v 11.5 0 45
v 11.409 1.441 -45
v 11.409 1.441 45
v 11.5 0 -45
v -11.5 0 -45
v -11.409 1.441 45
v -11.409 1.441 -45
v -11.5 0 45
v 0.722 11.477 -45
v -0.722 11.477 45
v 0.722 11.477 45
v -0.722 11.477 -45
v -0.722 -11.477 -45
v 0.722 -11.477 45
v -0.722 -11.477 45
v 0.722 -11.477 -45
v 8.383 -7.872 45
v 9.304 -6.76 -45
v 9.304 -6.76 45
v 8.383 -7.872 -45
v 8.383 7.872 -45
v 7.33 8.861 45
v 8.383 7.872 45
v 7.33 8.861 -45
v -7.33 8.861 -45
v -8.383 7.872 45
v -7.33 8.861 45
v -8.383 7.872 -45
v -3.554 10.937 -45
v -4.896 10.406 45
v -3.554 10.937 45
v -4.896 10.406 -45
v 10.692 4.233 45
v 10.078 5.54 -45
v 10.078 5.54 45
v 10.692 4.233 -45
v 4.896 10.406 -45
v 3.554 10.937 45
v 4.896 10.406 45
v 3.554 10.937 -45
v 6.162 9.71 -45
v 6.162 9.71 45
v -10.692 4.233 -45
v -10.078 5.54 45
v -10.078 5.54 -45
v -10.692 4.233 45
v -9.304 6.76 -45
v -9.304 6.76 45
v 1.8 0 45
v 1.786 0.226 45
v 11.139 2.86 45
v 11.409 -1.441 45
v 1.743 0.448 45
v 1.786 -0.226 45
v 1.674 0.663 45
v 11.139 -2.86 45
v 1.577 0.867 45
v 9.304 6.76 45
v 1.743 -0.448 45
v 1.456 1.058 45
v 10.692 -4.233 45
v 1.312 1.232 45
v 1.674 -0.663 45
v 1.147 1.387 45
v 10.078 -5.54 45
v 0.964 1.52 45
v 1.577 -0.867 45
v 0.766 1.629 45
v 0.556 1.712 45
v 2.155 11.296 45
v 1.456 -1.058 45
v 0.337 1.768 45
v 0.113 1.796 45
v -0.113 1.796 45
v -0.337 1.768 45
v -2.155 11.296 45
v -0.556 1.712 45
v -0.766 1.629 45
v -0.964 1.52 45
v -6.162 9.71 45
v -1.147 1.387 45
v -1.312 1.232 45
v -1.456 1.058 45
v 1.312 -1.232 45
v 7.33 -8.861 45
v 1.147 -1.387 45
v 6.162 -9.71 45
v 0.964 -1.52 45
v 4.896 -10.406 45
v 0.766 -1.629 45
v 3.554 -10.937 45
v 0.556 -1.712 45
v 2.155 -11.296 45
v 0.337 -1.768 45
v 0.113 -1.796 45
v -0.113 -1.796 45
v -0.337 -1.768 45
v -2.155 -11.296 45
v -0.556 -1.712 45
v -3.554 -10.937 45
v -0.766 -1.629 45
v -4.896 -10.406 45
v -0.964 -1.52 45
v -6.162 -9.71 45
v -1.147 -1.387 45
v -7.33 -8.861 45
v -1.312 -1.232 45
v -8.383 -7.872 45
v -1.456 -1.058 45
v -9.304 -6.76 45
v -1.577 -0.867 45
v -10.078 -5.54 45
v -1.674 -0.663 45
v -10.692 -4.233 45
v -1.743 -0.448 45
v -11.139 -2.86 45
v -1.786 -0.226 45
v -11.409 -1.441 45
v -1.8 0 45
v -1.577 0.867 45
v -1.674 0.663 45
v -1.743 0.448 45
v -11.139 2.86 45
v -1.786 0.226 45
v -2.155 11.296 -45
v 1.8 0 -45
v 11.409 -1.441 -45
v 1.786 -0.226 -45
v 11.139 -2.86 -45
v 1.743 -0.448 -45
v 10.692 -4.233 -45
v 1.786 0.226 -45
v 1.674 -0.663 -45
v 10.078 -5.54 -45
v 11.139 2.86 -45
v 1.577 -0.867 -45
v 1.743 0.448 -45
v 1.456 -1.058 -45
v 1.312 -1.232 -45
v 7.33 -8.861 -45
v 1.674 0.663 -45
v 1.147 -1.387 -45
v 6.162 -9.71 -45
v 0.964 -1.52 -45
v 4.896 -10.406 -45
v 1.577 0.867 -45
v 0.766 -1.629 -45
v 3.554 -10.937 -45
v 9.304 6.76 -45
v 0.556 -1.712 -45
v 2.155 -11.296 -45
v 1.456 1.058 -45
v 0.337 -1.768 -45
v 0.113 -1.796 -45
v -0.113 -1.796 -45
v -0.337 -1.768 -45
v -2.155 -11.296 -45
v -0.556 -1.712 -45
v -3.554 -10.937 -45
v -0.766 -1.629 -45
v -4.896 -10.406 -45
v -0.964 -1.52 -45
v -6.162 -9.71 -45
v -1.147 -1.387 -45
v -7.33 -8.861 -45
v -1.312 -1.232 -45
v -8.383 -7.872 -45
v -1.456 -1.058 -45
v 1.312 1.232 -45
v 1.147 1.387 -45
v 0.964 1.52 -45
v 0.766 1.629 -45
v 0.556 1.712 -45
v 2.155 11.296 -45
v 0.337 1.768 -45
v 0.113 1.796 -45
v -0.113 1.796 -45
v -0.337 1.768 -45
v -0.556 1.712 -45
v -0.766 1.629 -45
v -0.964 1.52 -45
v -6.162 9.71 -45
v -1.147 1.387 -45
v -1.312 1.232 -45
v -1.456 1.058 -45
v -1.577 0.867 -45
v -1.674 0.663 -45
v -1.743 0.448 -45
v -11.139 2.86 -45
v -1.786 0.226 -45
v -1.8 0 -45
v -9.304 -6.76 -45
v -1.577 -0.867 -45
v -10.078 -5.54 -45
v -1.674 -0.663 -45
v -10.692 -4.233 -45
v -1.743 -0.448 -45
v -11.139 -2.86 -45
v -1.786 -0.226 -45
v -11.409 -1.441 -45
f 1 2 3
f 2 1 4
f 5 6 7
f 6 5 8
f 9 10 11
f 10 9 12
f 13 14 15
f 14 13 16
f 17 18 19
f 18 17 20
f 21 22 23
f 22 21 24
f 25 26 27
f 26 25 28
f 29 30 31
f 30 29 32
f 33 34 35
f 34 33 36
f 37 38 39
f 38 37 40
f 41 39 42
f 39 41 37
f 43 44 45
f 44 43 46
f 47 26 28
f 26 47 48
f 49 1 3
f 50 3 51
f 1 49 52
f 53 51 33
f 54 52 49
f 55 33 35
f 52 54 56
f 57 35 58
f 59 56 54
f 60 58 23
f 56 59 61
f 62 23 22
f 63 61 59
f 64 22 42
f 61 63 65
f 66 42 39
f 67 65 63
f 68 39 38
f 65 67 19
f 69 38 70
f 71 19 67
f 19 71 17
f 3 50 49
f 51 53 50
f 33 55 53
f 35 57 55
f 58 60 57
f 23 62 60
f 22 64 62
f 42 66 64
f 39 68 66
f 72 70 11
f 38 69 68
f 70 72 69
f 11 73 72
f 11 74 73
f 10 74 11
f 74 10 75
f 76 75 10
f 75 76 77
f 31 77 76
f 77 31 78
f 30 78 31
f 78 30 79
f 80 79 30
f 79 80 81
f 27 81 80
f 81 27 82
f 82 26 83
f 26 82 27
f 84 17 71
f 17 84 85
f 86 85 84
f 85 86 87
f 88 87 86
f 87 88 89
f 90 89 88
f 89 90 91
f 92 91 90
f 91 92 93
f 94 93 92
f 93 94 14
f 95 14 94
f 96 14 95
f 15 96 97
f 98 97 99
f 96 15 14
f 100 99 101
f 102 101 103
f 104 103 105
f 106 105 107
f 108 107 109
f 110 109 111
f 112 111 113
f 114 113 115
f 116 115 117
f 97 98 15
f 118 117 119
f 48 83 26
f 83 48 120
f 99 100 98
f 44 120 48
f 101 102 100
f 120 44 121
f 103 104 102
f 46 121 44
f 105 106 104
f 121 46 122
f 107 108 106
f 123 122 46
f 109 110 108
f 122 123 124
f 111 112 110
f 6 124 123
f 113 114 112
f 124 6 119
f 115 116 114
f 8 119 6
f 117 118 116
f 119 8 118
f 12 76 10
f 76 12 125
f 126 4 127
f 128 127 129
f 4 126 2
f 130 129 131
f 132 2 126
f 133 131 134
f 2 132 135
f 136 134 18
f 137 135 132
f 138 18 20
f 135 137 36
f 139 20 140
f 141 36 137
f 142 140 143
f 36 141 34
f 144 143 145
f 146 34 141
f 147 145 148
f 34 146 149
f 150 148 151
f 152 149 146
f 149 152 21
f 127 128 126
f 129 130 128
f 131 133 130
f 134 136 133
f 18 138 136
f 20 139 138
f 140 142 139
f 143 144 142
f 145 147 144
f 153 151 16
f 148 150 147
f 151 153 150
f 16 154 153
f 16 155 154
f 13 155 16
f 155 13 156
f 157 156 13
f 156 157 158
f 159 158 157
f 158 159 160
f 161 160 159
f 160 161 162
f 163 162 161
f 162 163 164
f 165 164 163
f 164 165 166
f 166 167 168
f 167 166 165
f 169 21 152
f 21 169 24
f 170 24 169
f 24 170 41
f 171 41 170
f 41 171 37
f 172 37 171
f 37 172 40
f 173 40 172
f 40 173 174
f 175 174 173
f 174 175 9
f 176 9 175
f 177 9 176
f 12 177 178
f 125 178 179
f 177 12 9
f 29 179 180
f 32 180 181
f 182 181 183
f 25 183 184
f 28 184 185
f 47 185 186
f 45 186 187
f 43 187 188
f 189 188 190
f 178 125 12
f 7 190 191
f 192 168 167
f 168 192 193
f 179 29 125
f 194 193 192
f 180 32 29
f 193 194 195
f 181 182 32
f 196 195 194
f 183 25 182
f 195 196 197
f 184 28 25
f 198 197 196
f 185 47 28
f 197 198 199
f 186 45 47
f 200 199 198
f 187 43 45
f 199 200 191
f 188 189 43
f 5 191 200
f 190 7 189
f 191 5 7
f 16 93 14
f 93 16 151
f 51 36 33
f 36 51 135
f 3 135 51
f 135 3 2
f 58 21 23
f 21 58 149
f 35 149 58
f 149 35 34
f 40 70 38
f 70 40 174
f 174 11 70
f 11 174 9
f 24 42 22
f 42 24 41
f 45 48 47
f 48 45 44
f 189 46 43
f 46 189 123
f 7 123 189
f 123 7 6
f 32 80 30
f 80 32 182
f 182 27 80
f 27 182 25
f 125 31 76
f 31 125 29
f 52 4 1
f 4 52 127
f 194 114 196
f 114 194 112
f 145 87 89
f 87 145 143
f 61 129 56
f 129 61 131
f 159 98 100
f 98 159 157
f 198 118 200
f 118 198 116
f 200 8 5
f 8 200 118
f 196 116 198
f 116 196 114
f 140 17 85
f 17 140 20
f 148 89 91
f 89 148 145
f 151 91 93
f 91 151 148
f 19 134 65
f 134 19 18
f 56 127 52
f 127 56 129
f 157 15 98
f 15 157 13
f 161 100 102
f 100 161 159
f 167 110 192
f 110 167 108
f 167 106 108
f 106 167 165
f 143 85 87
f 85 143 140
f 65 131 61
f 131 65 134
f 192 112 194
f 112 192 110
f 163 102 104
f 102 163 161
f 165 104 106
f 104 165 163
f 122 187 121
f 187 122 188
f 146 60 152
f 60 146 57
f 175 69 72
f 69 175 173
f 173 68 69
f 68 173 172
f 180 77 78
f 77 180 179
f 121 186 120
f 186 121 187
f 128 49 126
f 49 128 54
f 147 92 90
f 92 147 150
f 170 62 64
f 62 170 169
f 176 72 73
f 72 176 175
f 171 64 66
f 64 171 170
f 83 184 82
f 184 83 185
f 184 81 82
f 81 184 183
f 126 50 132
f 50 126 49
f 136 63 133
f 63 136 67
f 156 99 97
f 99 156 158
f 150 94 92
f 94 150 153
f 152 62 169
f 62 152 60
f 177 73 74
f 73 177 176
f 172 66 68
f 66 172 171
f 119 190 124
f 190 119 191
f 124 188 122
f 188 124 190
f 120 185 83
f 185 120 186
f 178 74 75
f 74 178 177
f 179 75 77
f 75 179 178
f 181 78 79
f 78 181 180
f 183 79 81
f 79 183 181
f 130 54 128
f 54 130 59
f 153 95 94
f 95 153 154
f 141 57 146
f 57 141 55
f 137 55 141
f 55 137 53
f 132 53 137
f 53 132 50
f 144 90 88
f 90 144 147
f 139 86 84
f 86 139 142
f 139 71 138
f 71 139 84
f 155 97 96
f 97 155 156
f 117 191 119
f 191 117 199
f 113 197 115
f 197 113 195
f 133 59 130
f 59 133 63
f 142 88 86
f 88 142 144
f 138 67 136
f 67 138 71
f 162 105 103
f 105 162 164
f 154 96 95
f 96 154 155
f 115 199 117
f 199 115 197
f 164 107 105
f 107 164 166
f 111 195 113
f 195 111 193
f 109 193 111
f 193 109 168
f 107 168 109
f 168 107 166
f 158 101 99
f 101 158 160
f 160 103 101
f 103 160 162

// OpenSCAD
$fn = 50;


difference() {
	union() {
		translate(v = [0, 0, -45.0000000000]) {
			cylinder(h = 90, r = 11.5000000000);
		}
	}
	union() {
		translate(v = [0, 0, -100.0000000000]) {
			cylinder(h = 200, r = 1.8000000000);
		}
	}
}
